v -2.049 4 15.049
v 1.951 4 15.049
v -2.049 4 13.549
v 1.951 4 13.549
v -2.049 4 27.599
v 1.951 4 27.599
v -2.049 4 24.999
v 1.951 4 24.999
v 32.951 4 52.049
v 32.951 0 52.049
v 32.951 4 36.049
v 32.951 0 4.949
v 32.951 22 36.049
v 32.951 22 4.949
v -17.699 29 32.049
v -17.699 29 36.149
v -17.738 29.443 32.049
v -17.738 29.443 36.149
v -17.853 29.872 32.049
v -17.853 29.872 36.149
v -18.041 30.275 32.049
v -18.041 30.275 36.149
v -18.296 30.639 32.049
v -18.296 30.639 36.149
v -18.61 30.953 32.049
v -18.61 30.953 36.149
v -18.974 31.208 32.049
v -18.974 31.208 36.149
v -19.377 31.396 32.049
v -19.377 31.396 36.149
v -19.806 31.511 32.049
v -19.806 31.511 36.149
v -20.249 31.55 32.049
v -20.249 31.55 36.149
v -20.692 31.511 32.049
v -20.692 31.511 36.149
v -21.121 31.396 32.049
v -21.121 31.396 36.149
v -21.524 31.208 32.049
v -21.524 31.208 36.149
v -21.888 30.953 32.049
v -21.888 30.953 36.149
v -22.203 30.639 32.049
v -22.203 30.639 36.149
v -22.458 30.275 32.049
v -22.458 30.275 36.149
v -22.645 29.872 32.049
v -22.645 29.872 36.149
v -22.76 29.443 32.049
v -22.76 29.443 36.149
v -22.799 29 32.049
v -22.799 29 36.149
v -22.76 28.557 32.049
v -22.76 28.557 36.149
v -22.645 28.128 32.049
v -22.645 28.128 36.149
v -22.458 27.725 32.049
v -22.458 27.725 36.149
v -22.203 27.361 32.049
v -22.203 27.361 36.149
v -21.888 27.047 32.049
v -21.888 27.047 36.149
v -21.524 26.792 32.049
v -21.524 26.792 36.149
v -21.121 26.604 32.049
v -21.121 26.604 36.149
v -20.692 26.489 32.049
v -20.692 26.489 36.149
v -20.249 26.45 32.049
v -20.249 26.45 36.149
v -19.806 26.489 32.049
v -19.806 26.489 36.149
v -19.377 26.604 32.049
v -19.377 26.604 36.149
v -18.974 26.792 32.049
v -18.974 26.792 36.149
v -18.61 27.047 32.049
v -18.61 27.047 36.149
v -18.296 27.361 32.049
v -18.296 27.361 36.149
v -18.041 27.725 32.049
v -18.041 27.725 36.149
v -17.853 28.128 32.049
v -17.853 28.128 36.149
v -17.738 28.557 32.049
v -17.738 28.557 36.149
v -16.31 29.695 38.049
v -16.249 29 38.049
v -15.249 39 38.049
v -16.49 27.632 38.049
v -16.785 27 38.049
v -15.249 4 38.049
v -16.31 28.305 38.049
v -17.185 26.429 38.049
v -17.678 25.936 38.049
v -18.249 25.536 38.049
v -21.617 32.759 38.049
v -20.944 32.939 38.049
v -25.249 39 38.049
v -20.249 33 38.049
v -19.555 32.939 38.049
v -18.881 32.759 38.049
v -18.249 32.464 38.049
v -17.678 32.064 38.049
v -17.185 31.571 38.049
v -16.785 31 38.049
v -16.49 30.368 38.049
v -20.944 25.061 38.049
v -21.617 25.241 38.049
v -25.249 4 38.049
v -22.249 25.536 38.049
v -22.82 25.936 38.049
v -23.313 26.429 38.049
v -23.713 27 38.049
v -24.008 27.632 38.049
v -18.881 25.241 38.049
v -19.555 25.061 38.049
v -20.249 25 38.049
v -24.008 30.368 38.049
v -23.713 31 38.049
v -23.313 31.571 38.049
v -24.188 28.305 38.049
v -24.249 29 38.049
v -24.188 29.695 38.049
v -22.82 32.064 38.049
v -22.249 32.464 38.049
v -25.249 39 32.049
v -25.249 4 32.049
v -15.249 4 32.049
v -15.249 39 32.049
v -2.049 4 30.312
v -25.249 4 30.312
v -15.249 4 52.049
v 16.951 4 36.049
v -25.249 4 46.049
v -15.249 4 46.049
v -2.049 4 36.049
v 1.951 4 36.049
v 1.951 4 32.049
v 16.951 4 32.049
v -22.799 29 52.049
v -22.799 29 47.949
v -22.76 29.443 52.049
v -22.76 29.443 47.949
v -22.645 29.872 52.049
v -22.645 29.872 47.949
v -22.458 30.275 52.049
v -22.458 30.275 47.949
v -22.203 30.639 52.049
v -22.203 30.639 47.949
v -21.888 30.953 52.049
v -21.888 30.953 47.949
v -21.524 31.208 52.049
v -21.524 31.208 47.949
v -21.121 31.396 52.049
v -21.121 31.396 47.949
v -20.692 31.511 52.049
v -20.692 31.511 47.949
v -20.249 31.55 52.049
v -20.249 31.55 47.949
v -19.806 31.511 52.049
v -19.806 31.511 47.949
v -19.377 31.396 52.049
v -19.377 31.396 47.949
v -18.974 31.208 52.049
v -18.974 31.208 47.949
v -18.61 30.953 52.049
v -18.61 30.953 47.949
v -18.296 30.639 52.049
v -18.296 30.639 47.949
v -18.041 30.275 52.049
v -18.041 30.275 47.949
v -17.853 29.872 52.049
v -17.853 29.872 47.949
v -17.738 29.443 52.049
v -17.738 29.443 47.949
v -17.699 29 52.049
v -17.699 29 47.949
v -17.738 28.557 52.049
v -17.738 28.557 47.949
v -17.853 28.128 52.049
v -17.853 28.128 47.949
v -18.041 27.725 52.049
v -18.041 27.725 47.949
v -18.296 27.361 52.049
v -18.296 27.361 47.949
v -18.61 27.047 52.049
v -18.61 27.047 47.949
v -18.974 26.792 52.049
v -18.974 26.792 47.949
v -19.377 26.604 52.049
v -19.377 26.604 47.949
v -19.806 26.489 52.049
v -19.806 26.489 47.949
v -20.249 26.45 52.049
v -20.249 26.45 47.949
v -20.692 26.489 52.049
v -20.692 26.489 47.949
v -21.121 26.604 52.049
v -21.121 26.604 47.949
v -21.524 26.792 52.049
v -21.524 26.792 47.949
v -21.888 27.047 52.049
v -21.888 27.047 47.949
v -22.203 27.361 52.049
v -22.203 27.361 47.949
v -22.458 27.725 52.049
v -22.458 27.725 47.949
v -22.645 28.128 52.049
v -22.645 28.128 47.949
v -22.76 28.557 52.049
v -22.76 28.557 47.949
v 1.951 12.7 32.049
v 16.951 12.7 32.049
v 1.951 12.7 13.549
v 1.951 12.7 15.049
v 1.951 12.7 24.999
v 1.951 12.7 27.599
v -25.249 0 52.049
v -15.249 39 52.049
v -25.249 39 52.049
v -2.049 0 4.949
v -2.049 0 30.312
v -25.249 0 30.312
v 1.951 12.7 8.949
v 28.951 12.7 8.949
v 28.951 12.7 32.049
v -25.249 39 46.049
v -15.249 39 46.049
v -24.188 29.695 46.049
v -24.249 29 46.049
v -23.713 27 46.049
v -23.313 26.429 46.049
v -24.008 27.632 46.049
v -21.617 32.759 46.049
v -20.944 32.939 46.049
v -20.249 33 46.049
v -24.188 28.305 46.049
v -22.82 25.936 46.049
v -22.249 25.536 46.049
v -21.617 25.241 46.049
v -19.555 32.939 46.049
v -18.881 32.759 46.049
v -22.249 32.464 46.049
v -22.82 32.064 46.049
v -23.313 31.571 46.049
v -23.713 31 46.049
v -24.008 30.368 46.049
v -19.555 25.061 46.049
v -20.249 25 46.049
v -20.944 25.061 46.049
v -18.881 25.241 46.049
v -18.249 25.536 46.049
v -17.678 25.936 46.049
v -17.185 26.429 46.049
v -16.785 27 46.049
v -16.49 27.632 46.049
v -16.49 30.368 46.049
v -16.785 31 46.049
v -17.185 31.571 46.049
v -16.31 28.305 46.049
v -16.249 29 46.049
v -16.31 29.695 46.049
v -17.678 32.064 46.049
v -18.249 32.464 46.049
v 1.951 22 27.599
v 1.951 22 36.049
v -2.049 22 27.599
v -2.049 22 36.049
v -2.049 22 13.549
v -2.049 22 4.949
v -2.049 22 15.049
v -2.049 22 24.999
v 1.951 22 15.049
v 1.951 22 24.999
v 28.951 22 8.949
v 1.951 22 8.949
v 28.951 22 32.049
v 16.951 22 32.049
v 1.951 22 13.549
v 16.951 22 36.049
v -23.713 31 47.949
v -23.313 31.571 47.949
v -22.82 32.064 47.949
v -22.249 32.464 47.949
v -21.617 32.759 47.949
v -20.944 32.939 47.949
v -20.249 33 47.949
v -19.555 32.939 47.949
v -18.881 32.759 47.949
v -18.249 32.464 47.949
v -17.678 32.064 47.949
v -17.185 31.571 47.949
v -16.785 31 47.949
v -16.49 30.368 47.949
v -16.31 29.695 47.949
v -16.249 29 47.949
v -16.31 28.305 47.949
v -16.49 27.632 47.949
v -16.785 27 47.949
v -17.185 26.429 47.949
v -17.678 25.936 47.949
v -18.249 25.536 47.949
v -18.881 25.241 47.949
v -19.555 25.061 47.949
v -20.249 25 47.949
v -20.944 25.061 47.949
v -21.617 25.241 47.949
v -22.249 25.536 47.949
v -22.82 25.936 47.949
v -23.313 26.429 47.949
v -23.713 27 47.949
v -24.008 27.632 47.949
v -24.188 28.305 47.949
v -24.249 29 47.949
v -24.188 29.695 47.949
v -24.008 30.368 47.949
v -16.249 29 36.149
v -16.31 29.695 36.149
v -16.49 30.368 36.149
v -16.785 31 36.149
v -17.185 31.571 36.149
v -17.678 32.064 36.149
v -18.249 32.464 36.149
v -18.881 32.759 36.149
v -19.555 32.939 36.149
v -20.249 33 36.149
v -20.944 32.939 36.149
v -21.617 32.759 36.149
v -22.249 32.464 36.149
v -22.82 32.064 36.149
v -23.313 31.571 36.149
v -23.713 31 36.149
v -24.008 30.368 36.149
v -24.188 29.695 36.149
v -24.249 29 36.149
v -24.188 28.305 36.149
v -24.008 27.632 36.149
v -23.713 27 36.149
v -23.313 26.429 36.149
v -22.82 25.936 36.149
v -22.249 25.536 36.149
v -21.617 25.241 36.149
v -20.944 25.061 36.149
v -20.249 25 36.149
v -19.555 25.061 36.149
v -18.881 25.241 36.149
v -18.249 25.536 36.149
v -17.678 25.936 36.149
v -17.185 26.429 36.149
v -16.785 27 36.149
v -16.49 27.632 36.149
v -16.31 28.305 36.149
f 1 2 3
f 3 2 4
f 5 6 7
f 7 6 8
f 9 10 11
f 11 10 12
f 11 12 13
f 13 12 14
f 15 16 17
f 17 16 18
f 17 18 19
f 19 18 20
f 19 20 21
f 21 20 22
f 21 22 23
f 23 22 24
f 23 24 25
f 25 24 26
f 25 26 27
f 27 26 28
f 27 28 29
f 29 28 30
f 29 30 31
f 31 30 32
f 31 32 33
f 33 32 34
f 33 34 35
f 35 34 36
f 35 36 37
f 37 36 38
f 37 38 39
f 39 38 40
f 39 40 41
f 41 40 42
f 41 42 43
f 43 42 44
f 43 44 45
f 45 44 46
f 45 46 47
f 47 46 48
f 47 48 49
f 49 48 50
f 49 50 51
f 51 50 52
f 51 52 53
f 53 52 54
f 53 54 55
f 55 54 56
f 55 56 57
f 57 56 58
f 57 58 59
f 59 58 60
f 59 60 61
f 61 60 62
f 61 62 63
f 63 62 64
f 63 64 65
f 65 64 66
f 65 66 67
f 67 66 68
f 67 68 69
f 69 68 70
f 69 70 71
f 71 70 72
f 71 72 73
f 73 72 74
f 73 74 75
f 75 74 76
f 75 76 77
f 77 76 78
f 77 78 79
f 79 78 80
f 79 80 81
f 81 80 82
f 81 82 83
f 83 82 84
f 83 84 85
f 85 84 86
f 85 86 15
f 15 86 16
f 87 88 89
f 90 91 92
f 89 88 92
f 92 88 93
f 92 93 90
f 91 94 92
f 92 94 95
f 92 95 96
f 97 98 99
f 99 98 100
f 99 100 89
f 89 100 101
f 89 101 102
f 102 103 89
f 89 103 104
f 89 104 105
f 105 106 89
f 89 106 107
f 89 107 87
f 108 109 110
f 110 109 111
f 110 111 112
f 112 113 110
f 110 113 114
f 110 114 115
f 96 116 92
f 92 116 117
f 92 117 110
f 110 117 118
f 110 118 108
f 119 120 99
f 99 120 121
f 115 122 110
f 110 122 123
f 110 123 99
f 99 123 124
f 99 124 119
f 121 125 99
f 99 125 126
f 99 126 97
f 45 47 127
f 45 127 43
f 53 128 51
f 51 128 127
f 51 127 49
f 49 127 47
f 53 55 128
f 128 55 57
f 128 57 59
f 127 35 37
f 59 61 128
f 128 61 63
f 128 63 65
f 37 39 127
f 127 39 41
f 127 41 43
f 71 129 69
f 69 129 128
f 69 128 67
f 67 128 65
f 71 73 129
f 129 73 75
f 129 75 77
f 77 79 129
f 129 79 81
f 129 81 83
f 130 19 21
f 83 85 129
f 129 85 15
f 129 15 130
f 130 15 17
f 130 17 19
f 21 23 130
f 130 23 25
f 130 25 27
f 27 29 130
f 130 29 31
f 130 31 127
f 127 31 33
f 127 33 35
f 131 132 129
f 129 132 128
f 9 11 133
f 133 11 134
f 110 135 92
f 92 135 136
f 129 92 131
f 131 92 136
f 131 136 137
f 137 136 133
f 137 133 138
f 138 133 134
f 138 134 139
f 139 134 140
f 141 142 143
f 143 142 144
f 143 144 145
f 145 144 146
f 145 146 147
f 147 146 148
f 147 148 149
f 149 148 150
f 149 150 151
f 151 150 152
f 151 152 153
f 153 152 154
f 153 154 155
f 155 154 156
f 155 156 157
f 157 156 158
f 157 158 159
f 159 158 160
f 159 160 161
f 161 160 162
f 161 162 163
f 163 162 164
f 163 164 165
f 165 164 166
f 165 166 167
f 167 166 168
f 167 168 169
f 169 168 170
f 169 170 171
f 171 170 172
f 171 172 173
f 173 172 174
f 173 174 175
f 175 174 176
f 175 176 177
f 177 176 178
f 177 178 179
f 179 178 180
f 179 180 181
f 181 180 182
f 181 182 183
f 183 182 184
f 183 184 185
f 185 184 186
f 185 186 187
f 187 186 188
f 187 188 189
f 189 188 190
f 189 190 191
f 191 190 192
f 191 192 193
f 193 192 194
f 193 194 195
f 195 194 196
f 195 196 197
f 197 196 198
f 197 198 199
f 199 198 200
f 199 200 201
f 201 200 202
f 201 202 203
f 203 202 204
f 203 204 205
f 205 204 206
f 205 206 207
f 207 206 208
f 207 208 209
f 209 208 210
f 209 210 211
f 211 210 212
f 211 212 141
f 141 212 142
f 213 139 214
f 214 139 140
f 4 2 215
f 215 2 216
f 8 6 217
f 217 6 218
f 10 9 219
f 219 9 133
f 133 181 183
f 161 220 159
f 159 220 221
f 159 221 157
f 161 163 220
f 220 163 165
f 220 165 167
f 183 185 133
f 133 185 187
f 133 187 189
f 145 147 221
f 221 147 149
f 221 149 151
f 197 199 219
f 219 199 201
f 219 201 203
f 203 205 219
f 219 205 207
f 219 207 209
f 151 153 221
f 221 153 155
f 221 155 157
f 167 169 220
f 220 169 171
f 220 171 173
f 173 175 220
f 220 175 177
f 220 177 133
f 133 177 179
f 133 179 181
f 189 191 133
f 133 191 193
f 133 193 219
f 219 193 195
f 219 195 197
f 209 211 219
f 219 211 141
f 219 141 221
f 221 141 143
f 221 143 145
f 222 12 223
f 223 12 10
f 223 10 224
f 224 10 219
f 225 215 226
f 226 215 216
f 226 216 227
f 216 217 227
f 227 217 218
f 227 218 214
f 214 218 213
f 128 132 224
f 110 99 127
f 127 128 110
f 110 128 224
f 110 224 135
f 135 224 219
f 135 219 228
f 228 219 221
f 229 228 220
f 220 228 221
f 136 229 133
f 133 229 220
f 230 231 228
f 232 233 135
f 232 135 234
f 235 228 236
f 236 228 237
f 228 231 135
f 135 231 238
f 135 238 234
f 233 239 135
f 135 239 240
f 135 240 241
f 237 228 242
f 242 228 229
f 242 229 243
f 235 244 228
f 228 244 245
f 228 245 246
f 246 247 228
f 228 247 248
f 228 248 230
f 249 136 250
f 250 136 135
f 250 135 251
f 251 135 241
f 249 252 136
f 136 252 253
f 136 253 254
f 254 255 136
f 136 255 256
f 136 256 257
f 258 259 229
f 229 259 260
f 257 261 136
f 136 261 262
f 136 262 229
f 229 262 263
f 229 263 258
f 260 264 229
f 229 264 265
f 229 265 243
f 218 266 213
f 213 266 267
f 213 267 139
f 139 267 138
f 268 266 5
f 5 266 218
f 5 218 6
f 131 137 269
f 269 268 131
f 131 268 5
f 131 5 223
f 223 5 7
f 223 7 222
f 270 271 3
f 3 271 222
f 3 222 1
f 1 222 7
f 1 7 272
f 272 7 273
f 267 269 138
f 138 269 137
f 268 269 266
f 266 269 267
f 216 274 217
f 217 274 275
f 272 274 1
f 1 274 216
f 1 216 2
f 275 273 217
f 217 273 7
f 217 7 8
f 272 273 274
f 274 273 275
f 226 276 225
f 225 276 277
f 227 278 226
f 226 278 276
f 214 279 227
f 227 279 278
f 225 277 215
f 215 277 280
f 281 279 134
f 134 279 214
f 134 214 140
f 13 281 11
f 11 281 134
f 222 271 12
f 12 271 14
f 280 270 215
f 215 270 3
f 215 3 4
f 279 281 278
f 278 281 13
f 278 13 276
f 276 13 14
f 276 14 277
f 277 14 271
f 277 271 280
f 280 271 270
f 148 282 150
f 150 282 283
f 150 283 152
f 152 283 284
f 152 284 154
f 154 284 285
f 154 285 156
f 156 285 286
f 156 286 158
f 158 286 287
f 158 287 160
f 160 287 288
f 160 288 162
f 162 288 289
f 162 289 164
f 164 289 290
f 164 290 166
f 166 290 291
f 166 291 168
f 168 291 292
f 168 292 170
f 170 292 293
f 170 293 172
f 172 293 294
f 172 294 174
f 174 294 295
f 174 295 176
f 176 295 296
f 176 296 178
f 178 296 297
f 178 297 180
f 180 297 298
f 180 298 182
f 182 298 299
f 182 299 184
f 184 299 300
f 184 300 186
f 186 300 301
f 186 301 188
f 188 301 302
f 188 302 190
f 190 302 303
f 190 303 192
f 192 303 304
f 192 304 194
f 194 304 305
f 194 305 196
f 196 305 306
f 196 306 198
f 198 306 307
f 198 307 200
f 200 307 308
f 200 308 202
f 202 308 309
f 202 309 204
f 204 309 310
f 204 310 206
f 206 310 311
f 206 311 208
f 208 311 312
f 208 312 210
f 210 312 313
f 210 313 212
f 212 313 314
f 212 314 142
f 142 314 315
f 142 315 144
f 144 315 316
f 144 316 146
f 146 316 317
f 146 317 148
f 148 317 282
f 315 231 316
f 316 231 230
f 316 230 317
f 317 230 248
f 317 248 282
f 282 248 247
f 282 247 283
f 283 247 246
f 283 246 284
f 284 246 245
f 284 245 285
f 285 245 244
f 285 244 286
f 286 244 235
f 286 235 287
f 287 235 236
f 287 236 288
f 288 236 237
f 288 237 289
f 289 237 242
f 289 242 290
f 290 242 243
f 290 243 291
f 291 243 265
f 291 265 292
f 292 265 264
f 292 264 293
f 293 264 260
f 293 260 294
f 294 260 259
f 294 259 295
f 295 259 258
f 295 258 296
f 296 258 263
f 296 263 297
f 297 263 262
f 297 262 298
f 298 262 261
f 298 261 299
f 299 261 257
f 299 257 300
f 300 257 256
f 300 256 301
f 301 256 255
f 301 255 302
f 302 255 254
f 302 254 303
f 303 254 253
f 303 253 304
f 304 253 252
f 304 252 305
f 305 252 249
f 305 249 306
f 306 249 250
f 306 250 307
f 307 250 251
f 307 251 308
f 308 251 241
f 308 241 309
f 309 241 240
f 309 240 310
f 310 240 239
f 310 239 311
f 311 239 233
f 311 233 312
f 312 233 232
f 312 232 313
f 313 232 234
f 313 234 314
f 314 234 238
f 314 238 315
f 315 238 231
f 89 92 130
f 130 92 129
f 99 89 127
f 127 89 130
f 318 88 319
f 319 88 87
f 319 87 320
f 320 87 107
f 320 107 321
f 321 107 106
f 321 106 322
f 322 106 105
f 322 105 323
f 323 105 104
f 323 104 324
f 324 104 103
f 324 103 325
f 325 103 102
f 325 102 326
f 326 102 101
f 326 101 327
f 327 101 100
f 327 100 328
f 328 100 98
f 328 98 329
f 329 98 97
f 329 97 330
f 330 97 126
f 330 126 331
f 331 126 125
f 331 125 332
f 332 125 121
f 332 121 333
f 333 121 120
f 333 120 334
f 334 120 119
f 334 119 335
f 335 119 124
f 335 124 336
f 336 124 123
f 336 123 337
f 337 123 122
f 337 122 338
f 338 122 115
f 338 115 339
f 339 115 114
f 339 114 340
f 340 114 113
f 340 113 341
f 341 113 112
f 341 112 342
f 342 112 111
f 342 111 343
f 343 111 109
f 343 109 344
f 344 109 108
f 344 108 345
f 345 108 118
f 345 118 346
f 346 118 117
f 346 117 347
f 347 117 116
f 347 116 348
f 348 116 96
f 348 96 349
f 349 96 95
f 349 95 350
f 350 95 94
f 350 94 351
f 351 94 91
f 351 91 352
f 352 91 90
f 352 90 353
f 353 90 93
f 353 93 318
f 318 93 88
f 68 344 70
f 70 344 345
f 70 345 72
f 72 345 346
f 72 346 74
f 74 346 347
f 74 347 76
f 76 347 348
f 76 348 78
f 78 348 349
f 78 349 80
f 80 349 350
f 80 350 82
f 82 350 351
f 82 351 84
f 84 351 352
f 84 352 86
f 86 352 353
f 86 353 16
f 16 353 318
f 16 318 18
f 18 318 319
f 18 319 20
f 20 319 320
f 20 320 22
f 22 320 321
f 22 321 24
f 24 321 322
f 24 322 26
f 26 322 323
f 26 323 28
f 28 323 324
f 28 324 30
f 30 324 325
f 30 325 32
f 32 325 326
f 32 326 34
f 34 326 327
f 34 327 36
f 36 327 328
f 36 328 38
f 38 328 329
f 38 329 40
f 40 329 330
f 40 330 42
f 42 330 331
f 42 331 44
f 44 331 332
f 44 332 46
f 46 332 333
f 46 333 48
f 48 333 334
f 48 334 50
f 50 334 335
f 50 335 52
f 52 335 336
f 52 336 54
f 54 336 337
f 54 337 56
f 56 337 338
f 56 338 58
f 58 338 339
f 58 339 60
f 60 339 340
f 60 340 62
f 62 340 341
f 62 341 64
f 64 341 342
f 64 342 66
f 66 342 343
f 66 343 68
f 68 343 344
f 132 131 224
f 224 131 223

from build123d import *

# Parameters (mm, degrees)
SKETCH1_W           = 60
SKETCH1_H           = 70
BOSS_EXTRUDE1_DEPTH = 4
SKETCH4_W           = 27
SKETCH4_H           = 23.1
BOSS_EXTRUDE3_DEPTH = 8.7
SKETCH3_W           = 10
SKETCH3_H           = 35
SKETCH3_R           = 1.5
BOSS_EXTRUDE2_DEPTH = 6
SKETCH5_W           = 4
SKETCH5_H           = 9.95
SKETCH5_H_2         = 8.45
BOSS_EXTRUDE4_DEPTH = 18
SKETCH6_R           = 2.55
CUT_EXTRUDE1_DEPTH  = 6
SKETCH7_R           = 4
CUT_EXTRUDE2_DEPTH  = 1.9
CUT_EXTRUDE3_REACH  = 6


with BuildPart() as part:
    # Sketch1 → Boss-Extrude1 (new body)
    with BuildSketch(Plane(origin=(0, 0, 0), x_dir=(1, 0, 0), z_dir=(0, 1, 0))):
        with Locations((2.950819672, -17.049180328)):
            Rectangle(SKETCH1_W, SKETCH1_H)
    extrude(amount=BOSS_EXTRUDE1_DEPTH)

    # Sketch4 → Boss-Extrude3 (add)
    with BuildSketch(Plane(origin=(0, 4, 0), x_dir=(1, 0, 0), z_dir=(0, 1, 0))):
        with Locations((15.450819672, -20.499180328)):
            Rectangle(SKETCH4_W, SKETCH4_H)
    extrude(amount=BOSS_EXTRUDE3_DEPTH)

    # Sketch3 → Boss-Extrude2 (add)
    with BuildSketch(Plane.XY.offset(52.049180328)):
        with Locations((-20.249180328, 21.5)):
            Rectangle(SKETCH3_W, SKETCH3_H)
        with Locations((-20.249180328, 29)):
            Circle(SKETCH3_R, mode=Mode.SUBTRACT)
    boss_extrude2 = extrude(amount=-BOSS_EXTRUDE2_DEPTH)

    # Sketch5 → Boss-Extrude4 (add)
    with BuildSketch(Plane(origin=(0, 4, 0), x_dir=(1, 0, 0), z_dir=(0, 1, 0))):
        Polygon((1.950819672, -13.549180328), (1.950819672, -8.949180328), (28.950819672, -8.949180328), (28.950819672, -32.049180328), (16.950819672, -32.049180328), (16.950819672, -36.049180328), (32.950819672, -36.049180328), (32.950819672, -4.949180328), (-2.049180328, -4.949180328), (-2.049180328, -13.549180328), align=None)
        with Locations((-0.049180328, -20.024180328)):
            Rectangle(SKETCH5_W, SKETCH5_H)
        with Locations((-0.049180328, -31.824180328)):
            Rectangle(SKETCH5_W, SKETCH5_H_2)
    extrude(amount=BOSS_EXTRUDE4_DEPTH)

    # Sketch6 → Cut-Extrude1 (cut)
    with BuildSketch(Plane(origin=(0, 0, 46.049180328), x_dir=(-1, 0, 0), z_dir=(0, 0, -1))):
        with Locations((20.249180328, 29)):
            Circle(SKETCH6_R)
    cut_extrude1 = extrude(amount=-CUT_EXTRUDE1_DEPTH, mode=Mode.SUBTRACT)

    # Sketch7 → Cut-Extrude2 (cut)
    with BuildSketch(Plane(origin=(0, 0, 46.049180328), x_dir=(-1, 0, 0), z_dir=(0, 0, -1))):
        with Locations((20.249180328, 29)):
            Circle(SKETCH7_R)
    cut_extrude2 = extrude(amount=-CUT_EXTRUDE2_DEPTH, mode=Mode.SUBTRACT)

    # Mirror1: Boss-Extrude2, Cut-Extrude1, Cut-Extrude2 across plane
    add(boss_extrude2.mirror(Plane(origin=(0, 0, 42.049180328), x_dir=(1, 0, 0), z_dir=(0, 0, -1))))
    add(cut_extrude1.mirror(Plane(origin=(0, 0, 42.049180328), x_dir=(1, 0, 0), z_dir=(0, 0, -1))), mode=Mode.SUBTRACT)
    add(cut_extrude2.mirror(Plane(origin=(0, 0, 42.049180328), x_dir=(1, 0, 0), z_dir=(0, 0, -1))), mode=Mode.SUBTRACT)

    # Sketch9 → Cut-Extrude3 (cut, up to next)
    with BuildSketch(Plane(origin=(0, 4, 0), x_dir=(1, 0, 0), z_dir=(0, 1, 0)), mode=Mode.PRIVATE) as cut_extrude3_sk1:
        Polygon((-2.049180328, -13.549180328), (-2.049180328, -4.949180328), (-27.049180328, -4.949180328), (-27.049180328, -30.311897608), (-25.249180328, -30.311897608), (-2.049180328, -30.311897608), (-2.049180328, -27.599180328), (-2.049180328, -24.999180328), (-2.049180328, -15.049180328), align=None)
    cut_extrude3_tool1 = extrude(cut_extrude3_sk1.sketch, amount=-CUT_EXTRUDE3_REACH, mode=Mode.PRIVATE) & part.part
    add(cut_extrude3_tool1.solids().sort_by_distance((-14.54918, 4, 17.630539))[0], mode=Mode.SUBTRACT)
    # Sketch9 → Cut-Extrude3 (cut, up to next)
    with BuildSketch(Plane(origin=(0, 4, 0), x_dir=(1, 0, 0), z_dir=(0, 1, 0)), mode=Mode.PRIVATE) as cut_extrude3_sk2:
        Polygon((-2.049180328, -4.949180328), (32.950819672, -4.949180328), (32.950819672, 17.950819672), (-27.049180328, 17.950819672), (-27.049180328, -4.949180328), align=None)
    cut_extrude3_tool2 = extrude(cut_extrude3_sk2.sketch, amount=-CUT_EXTRUDE3_REACH, mode=Mode.PRIVATE) & part.part
    add(cut_extrude3_tool2.solids().sort_by_distance((2.95082, 4, -6.50082))[0], mode=Mode.SUBTRACT)
    # Sketch9 → Cut-Extrude3 (cut, up to next)
    with BuildSketch(Plane(origin=(0, 4, 0), x_dir=(1, 0, 0), z_dir=(0, 1, 0)), mode=Mode.PRIVATE) as cut_extrude3_sk3:
        Polygon((-25.249180328, -30.311897608), (-27.049180328, -30.311897608), (-27.049180328, -52.049180328), (-25.249180328, -52.049180328), (-25.249180328, -46.049180328), (-25.249180328, -38.049180328), (-25.249180328, -32.049180328), align=None)
    cut_extrude3_tool3 = extrude(cut_extrude3_sk3.sketch, amount=-CUT_EXTRUDE3_REACH, mode=Mode.PRIVATE) & part.part
    add(cut_extrude3_tool3.solids().sort_by_distance((-26.14918, 4, 41.180539))[0], mode=Mode.SUBTRACT)


solid = part.part
